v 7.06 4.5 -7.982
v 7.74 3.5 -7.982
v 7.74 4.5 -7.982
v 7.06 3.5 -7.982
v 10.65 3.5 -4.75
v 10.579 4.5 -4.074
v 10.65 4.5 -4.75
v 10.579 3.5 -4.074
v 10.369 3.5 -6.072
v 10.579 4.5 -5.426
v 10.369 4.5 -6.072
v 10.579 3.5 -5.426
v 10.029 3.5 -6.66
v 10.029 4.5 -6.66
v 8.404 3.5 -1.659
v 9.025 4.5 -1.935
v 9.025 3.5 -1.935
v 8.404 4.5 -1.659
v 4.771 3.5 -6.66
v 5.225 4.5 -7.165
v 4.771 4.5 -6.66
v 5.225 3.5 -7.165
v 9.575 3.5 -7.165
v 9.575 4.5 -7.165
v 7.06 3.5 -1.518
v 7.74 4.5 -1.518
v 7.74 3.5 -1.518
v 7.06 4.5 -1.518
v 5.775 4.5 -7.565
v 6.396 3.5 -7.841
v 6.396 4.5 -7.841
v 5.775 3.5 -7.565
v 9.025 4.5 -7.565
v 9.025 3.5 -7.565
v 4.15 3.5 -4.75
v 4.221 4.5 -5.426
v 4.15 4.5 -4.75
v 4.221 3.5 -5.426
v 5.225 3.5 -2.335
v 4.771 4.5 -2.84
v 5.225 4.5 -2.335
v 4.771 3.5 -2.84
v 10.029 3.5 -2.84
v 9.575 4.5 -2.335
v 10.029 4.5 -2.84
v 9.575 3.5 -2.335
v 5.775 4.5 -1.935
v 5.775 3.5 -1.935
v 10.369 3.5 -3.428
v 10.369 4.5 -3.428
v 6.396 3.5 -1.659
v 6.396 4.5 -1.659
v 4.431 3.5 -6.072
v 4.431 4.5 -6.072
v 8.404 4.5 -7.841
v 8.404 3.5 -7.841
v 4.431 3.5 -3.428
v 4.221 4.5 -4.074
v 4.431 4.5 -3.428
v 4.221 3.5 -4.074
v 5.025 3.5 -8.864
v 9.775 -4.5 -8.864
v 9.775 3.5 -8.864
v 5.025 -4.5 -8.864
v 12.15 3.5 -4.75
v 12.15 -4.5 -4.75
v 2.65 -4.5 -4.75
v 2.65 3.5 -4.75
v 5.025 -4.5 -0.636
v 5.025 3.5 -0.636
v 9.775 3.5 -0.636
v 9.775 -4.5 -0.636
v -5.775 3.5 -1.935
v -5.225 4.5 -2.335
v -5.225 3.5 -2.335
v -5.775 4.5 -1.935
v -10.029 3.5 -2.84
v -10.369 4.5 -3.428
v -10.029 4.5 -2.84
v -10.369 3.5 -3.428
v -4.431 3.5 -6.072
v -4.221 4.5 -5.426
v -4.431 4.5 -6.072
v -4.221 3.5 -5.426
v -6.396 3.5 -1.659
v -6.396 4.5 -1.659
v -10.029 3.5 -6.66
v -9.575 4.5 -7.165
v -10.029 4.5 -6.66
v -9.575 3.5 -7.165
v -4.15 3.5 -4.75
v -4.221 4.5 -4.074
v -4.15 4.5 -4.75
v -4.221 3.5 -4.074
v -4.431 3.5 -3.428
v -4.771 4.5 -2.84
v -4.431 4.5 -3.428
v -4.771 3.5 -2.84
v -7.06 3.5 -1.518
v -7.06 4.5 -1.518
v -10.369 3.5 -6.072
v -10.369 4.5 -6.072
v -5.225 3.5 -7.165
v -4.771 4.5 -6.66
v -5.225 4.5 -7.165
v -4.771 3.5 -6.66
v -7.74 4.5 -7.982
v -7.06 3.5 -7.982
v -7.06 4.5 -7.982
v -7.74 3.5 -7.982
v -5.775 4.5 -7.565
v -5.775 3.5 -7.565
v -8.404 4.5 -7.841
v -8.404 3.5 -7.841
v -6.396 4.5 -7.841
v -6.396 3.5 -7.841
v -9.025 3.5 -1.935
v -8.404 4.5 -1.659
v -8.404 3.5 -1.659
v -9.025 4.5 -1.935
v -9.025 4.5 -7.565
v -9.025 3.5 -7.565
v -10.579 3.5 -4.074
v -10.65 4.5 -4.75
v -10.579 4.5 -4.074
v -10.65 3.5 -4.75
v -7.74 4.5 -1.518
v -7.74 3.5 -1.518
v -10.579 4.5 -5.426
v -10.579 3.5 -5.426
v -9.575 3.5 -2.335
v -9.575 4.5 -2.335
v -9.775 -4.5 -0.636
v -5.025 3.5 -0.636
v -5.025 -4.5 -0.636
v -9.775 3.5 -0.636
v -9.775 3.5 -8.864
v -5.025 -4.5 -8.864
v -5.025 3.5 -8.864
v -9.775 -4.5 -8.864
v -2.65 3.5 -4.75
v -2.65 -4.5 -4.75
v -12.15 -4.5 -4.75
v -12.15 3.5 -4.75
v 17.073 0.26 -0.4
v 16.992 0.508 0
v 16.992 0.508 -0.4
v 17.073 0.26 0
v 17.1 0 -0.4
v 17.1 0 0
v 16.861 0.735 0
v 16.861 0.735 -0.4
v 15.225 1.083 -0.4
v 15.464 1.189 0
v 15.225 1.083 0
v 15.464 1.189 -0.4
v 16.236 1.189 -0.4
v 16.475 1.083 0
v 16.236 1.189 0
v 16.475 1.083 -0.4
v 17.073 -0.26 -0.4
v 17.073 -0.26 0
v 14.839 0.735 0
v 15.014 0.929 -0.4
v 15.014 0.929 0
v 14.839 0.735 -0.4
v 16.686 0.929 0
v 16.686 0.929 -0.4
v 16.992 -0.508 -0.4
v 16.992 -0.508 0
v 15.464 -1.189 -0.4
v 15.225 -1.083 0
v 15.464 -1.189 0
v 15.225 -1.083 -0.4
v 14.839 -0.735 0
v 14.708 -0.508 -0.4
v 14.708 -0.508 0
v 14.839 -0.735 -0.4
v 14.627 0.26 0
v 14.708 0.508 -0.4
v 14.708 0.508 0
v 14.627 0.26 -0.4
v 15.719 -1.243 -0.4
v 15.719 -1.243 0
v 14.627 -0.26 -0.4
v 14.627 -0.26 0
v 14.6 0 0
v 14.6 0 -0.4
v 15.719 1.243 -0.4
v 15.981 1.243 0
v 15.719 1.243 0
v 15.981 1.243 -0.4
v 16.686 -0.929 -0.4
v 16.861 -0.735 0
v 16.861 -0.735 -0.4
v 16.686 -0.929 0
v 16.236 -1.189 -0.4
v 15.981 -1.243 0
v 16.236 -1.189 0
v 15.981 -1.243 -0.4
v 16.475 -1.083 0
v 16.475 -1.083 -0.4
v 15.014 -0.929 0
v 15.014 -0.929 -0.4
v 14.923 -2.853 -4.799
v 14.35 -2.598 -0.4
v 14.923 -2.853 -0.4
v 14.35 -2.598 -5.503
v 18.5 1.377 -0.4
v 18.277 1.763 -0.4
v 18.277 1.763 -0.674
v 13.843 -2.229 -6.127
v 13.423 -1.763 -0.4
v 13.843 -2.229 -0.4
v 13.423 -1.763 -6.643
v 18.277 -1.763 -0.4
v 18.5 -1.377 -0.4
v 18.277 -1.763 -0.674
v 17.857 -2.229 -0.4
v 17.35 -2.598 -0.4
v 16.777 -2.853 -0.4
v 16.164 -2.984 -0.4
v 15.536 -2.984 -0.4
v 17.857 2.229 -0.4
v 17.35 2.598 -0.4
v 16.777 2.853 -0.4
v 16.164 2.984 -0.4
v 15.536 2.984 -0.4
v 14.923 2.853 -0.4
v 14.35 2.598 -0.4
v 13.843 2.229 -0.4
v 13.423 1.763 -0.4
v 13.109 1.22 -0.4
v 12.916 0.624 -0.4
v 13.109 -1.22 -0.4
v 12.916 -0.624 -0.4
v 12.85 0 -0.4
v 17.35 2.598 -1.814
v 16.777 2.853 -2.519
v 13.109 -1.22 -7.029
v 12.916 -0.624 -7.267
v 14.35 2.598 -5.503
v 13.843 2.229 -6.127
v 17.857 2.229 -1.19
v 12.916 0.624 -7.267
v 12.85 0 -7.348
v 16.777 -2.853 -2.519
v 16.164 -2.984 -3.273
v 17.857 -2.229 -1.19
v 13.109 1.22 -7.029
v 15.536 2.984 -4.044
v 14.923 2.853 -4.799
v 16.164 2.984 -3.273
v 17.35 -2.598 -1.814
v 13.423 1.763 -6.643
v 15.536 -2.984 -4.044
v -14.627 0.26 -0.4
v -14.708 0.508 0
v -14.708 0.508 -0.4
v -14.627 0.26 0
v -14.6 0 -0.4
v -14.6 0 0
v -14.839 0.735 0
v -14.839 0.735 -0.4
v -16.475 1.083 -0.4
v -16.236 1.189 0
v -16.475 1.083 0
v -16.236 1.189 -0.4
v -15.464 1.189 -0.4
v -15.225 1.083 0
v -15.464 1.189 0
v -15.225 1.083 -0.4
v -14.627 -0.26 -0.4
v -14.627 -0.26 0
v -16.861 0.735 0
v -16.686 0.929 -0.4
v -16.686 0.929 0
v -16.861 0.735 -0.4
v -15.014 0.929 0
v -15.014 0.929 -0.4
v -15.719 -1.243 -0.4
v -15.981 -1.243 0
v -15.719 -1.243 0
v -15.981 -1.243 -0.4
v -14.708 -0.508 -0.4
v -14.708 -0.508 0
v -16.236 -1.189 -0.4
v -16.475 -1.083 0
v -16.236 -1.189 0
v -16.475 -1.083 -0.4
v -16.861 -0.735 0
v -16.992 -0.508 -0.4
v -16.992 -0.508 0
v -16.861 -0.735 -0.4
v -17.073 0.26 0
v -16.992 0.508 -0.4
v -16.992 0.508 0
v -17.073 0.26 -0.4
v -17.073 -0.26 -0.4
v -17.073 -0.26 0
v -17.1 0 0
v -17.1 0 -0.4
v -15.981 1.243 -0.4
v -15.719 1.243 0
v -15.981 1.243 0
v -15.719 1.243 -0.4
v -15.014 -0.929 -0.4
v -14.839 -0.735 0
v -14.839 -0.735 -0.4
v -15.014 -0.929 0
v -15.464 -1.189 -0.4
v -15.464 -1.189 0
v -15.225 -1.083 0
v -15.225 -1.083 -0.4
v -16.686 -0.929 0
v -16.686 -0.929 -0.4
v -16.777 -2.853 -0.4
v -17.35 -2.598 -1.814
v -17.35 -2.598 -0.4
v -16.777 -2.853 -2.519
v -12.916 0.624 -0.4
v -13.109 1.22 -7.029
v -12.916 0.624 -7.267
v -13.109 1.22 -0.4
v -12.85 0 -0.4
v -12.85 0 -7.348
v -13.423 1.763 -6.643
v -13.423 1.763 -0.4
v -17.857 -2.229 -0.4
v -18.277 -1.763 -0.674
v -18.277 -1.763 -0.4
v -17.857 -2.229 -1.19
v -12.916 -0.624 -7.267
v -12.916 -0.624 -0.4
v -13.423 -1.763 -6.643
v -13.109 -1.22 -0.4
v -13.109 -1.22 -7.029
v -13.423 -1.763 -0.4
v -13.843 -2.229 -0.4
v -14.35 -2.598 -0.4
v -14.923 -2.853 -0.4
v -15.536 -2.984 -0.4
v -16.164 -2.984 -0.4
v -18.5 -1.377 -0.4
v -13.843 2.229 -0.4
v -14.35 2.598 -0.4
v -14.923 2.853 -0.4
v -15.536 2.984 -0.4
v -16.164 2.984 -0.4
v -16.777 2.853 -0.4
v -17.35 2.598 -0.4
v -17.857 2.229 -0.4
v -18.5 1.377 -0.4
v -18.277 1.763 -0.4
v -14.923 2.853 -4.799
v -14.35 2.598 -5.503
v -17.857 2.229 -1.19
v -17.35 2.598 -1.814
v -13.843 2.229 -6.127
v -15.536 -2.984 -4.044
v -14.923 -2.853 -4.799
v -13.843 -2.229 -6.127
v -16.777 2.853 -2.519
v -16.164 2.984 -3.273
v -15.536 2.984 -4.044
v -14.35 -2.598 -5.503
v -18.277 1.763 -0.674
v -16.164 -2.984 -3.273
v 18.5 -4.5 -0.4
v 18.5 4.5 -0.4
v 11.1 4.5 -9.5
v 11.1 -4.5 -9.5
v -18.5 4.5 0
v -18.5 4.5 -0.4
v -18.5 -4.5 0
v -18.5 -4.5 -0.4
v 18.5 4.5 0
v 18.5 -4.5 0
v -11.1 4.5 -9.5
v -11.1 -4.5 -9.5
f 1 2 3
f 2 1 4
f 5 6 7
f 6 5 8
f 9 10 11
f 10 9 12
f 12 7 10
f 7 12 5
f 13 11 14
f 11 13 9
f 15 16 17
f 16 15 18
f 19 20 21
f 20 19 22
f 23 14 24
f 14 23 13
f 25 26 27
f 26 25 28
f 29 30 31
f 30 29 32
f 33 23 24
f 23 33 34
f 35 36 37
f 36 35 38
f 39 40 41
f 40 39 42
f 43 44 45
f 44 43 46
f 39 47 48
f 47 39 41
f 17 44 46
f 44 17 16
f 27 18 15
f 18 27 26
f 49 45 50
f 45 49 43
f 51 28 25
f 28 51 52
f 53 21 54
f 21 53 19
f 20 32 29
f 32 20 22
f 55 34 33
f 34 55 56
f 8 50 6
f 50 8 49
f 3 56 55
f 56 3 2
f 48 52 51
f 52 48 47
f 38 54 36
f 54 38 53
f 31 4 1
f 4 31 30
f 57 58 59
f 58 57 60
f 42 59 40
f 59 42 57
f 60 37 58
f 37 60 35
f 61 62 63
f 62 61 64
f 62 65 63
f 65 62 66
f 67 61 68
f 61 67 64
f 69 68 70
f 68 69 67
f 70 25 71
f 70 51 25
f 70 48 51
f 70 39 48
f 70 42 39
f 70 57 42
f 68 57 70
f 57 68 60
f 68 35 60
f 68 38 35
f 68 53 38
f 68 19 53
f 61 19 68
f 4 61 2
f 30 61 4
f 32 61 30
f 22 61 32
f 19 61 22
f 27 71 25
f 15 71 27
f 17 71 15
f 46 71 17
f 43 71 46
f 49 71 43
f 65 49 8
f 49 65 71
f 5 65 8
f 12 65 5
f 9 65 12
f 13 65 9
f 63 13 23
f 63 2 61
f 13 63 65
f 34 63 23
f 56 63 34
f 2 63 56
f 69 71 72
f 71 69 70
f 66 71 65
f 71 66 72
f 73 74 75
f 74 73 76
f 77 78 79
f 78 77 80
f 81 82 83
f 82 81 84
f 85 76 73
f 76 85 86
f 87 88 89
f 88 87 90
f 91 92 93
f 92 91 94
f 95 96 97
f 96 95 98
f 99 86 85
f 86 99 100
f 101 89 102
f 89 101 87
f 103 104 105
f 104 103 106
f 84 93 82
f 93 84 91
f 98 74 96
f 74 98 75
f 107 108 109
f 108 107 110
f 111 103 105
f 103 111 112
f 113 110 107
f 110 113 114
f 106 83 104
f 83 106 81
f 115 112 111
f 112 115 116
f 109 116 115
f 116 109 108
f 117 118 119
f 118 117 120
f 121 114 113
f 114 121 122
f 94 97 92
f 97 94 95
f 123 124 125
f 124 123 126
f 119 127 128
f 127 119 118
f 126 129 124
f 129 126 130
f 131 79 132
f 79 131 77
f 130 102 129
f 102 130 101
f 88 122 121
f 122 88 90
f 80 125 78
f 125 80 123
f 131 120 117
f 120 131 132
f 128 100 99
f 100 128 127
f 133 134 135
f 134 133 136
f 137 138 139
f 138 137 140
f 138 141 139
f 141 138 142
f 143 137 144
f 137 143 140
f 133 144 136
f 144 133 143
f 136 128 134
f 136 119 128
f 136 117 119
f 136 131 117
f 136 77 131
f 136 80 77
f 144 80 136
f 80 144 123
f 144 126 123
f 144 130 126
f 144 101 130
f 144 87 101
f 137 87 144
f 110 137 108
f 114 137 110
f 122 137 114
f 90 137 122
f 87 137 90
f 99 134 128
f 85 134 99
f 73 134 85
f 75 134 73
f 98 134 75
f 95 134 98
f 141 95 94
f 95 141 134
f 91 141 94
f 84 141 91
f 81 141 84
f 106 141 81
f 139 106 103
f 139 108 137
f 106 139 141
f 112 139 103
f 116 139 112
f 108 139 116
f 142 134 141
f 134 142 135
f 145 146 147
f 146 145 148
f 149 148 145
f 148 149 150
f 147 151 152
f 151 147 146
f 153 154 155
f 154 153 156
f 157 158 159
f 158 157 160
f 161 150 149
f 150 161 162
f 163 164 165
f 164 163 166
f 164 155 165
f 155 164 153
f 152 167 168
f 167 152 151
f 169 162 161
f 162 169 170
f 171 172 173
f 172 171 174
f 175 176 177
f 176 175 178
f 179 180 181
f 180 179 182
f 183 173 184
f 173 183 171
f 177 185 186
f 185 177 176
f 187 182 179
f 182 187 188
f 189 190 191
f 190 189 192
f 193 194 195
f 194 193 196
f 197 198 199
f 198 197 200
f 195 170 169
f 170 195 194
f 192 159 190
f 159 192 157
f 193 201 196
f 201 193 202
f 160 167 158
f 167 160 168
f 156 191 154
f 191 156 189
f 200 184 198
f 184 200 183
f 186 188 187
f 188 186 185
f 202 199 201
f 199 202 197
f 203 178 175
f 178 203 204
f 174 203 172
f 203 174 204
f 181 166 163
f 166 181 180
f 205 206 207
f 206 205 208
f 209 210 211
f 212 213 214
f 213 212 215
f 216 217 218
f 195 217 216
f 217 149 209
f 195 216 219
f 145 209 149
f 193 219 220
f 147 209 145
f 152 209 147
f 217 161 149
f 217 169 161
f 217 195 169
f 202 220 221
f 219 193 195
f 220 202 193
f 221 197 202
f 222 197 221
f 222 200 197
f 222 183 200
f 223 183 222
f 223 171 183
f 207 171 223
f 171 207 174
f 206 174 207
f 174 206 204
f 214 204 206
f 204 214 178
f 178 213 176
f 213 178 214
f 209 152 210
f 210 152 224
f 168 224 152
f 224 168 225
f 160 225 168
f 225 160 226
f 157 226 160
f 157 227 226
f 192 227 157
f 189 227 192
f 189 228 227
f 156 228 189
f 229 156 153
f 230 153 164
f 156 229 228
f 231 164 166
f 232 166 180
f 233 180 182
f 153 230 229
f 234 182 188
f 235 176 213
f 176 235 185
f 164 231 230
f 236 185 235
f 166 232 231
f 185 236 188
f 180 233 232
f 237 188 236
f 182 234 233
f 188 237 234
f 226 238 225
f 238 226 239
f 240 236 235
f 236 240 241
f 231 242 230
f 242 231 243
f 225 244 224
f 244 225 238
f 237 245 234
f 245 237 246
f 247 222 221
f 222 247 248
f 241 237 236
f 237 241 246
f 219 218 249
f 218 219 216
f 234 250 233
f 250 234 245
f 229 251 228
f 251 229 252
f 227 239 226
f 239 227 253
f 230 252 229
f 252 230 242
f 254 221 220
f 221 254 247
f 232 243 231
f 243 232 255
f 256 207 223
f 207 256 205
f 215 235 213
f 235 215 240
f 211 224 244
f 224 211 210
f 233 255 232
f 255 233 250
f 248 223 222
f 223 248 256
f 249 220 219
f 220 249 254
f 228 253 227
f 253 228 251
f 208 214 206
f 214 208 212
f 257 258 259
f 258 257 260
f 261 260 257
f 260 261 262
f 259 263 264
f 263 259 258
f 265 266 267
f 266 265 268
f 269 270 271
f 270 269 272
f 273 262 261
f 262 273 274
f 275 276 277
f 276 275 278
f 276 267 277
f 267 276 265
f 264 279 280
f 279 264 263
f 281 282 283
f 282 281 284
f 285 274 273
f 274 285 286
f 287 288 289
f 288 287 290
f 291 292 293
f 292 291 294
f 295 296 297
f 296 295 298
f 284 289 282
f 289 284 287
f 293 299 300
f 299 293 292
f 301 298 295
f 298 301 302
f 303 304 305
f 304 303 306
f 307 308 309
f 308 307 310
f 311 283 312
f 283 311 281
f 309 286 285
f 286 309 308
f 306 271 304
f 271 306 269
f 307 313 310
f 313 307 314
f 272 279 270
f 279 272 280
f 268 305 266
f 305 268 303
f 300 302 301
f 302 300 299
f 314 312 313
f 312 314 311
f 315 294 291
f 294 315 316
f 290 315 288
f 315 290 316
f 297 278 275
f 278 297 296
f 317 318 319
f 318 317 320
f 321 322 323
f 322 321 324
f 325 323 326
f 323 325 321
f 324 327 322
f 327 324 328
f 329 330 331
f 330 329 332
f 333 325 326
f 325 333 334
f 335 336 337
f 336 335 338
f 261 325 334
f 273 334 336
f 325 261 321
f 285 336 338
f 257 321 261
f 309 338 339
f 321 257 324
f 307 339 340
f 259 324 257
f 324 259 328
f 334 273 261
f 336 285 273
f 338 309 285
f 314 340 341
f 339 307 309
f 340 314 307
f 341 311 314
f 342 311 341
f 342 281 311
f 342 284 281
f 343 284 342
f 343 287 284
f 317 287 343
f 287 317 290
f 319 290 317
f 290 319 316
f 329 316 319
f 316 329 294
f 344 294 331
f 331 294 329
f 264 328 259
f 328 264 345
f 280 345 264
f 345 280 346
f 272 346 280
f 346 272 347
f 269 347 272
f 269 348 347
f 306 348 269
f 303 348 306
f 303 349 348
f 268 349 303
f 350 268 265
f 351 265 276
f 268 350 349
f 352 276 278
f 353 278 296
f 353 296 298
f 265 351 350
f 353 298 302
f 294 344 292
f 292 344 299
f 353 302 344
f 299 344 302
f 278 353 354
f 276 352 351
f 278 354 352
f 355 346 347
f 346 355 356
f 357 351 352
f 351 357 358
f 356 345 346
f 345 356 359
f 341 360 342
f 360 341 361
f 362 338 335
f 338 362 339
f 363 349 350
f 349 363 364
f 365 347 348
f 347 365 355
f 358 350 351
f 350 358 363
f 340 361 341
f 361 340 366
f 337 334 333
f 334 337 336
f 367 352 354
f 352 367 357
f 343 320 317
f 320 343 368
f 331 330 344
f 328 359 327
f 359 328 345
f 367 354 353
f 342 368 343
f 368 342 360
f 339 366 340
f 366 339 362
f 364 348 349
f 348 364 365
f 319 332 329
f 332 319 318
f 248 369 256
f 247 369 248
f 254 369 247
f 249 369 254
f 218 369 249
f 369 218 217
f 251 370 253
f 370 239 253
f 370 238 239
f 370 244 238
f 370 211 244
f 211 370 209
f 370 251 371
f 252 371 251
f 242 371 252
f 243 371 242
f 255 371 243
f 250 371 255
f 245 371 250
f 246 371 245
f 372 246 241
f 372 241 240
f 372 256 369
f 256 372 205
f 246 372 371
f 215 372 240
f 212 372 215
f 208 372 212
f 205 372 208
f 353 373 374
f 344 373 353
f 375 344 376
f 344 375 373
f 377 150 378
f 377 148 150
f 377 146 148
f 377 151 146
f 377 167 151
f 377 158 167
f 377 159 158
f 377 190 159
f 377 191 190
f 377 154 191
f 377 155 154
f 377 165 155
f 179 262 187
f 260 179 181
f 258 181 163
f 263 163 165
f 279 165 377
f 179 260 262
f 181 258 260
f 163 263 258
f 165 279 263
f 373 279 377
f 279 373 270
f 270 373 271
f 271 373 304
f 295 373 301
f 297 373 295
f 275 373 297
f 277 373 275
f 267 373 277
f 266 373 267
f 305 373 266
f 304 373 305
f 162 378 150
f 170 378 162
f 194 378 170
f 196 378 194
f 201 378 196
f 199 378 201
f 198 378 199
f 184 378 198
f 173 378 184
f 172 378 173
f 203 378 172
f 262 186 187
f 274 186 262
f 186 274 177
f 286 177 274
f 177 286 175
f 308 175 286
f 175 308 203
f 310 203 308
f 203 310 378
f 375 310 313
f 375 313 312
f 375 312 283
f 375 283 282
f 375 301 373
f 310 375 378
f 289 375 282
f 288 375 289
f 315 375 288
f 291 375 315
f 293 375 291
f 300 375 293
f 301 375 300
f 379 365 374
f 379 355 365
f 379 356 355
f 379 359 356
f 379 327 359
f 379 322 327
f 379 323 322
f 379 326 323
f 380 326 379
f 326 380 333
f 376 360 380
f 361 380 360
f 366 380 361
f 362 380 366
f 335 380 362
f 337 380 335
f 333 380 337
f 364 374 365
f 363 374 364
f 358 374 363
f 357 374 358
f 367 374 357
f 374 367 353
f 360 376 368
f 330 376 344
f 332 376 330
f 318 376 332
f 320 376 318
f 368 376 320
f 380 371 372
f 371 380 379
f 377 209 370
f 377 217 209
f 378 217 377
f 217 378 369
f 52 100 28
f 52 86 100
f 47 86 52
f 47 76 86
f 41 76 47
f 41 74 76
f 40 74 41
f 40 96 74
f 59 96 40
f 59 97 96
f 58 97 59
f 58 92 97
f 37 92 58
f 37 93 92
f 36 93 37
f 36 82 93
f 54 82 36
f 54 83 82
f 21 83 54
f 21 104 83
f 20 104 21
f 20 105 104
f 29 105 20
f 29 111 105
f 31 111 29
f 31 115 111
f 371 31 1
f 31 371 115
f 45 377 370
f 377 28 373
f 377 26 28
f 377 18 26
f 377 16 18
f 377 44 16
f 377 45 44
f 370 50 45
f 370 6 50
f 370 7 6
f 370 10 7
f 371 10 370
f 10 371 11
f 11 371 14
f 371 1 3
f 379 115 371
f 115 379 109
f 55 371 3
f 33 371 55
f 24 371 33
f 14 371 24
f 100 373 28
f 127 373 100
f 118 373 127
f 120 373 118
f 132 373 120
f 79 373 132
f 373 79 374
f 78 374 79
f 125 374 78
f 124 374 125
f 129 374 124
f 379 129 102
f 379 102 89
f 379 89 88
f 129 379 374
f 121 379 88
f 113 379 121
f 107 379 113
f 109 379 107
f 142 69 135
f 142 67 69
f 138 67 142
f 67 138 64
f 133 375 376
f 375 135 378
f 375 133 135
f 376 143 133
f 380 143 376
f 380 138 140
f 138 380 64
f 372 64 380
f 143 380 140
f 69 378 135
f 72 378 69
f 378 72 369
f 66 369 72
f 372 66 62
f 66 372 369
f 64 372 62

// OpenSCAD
mcx_dist = 15.2-0.4;
SMA_nut_d = 9.5;
SMA_screw_d = 6.5;
SMA_nut_l = 9;


jst_from_side = 2+0.5;

wall_side = 1;
layer_thickness = 0.2;

module tfsik_antenna_holder(){

    difference(){
        hull(){
          translate([0, 0, -SMA_nut_d/2]) cube([mcx_dist*1.5, SMA_nut_l, SMA_nut_d], center=true);
          translate([0, 0, -layer_thickness]) cube([mcx_dist*2.5, SMA_nut_l, 2*layer_thickness], center=true);
        }

        // MCX

        for(x=[0.5*mcx_dist, -0.5*mcx_dist]) translate([x, 0, 0]){
            translate([0, -2, -SMA_nut_d/2]) rotate([-90, 0, 0]) cylinder(d=SMA_screw_d, h=10, $fn=30);
            translate([0, -wall_side -SMA_nut_l/2, -SMA_nut_d/2]) rotate([-90, 0, 0]) cylinder(d=SMA_nut_d, h=SMA_nut_l, $fn=6);
        }

        for(x=[0.5*(mcx_dist*1.5+SMA_nut_d), -0.5*(mcx_dist*1.5+SMA_nut_d)]) translate([x, 0, 0]){
            translate([0, 0, -6]) cylinder(d=2.5, h=10, $fn=30);
            translate([0, 0, -9 - 2*layer_thickness]) cylinder(d=6, h=SMA_nut_l, $fn=30);
        }

    }

}

tfsik_antenna_holder();
